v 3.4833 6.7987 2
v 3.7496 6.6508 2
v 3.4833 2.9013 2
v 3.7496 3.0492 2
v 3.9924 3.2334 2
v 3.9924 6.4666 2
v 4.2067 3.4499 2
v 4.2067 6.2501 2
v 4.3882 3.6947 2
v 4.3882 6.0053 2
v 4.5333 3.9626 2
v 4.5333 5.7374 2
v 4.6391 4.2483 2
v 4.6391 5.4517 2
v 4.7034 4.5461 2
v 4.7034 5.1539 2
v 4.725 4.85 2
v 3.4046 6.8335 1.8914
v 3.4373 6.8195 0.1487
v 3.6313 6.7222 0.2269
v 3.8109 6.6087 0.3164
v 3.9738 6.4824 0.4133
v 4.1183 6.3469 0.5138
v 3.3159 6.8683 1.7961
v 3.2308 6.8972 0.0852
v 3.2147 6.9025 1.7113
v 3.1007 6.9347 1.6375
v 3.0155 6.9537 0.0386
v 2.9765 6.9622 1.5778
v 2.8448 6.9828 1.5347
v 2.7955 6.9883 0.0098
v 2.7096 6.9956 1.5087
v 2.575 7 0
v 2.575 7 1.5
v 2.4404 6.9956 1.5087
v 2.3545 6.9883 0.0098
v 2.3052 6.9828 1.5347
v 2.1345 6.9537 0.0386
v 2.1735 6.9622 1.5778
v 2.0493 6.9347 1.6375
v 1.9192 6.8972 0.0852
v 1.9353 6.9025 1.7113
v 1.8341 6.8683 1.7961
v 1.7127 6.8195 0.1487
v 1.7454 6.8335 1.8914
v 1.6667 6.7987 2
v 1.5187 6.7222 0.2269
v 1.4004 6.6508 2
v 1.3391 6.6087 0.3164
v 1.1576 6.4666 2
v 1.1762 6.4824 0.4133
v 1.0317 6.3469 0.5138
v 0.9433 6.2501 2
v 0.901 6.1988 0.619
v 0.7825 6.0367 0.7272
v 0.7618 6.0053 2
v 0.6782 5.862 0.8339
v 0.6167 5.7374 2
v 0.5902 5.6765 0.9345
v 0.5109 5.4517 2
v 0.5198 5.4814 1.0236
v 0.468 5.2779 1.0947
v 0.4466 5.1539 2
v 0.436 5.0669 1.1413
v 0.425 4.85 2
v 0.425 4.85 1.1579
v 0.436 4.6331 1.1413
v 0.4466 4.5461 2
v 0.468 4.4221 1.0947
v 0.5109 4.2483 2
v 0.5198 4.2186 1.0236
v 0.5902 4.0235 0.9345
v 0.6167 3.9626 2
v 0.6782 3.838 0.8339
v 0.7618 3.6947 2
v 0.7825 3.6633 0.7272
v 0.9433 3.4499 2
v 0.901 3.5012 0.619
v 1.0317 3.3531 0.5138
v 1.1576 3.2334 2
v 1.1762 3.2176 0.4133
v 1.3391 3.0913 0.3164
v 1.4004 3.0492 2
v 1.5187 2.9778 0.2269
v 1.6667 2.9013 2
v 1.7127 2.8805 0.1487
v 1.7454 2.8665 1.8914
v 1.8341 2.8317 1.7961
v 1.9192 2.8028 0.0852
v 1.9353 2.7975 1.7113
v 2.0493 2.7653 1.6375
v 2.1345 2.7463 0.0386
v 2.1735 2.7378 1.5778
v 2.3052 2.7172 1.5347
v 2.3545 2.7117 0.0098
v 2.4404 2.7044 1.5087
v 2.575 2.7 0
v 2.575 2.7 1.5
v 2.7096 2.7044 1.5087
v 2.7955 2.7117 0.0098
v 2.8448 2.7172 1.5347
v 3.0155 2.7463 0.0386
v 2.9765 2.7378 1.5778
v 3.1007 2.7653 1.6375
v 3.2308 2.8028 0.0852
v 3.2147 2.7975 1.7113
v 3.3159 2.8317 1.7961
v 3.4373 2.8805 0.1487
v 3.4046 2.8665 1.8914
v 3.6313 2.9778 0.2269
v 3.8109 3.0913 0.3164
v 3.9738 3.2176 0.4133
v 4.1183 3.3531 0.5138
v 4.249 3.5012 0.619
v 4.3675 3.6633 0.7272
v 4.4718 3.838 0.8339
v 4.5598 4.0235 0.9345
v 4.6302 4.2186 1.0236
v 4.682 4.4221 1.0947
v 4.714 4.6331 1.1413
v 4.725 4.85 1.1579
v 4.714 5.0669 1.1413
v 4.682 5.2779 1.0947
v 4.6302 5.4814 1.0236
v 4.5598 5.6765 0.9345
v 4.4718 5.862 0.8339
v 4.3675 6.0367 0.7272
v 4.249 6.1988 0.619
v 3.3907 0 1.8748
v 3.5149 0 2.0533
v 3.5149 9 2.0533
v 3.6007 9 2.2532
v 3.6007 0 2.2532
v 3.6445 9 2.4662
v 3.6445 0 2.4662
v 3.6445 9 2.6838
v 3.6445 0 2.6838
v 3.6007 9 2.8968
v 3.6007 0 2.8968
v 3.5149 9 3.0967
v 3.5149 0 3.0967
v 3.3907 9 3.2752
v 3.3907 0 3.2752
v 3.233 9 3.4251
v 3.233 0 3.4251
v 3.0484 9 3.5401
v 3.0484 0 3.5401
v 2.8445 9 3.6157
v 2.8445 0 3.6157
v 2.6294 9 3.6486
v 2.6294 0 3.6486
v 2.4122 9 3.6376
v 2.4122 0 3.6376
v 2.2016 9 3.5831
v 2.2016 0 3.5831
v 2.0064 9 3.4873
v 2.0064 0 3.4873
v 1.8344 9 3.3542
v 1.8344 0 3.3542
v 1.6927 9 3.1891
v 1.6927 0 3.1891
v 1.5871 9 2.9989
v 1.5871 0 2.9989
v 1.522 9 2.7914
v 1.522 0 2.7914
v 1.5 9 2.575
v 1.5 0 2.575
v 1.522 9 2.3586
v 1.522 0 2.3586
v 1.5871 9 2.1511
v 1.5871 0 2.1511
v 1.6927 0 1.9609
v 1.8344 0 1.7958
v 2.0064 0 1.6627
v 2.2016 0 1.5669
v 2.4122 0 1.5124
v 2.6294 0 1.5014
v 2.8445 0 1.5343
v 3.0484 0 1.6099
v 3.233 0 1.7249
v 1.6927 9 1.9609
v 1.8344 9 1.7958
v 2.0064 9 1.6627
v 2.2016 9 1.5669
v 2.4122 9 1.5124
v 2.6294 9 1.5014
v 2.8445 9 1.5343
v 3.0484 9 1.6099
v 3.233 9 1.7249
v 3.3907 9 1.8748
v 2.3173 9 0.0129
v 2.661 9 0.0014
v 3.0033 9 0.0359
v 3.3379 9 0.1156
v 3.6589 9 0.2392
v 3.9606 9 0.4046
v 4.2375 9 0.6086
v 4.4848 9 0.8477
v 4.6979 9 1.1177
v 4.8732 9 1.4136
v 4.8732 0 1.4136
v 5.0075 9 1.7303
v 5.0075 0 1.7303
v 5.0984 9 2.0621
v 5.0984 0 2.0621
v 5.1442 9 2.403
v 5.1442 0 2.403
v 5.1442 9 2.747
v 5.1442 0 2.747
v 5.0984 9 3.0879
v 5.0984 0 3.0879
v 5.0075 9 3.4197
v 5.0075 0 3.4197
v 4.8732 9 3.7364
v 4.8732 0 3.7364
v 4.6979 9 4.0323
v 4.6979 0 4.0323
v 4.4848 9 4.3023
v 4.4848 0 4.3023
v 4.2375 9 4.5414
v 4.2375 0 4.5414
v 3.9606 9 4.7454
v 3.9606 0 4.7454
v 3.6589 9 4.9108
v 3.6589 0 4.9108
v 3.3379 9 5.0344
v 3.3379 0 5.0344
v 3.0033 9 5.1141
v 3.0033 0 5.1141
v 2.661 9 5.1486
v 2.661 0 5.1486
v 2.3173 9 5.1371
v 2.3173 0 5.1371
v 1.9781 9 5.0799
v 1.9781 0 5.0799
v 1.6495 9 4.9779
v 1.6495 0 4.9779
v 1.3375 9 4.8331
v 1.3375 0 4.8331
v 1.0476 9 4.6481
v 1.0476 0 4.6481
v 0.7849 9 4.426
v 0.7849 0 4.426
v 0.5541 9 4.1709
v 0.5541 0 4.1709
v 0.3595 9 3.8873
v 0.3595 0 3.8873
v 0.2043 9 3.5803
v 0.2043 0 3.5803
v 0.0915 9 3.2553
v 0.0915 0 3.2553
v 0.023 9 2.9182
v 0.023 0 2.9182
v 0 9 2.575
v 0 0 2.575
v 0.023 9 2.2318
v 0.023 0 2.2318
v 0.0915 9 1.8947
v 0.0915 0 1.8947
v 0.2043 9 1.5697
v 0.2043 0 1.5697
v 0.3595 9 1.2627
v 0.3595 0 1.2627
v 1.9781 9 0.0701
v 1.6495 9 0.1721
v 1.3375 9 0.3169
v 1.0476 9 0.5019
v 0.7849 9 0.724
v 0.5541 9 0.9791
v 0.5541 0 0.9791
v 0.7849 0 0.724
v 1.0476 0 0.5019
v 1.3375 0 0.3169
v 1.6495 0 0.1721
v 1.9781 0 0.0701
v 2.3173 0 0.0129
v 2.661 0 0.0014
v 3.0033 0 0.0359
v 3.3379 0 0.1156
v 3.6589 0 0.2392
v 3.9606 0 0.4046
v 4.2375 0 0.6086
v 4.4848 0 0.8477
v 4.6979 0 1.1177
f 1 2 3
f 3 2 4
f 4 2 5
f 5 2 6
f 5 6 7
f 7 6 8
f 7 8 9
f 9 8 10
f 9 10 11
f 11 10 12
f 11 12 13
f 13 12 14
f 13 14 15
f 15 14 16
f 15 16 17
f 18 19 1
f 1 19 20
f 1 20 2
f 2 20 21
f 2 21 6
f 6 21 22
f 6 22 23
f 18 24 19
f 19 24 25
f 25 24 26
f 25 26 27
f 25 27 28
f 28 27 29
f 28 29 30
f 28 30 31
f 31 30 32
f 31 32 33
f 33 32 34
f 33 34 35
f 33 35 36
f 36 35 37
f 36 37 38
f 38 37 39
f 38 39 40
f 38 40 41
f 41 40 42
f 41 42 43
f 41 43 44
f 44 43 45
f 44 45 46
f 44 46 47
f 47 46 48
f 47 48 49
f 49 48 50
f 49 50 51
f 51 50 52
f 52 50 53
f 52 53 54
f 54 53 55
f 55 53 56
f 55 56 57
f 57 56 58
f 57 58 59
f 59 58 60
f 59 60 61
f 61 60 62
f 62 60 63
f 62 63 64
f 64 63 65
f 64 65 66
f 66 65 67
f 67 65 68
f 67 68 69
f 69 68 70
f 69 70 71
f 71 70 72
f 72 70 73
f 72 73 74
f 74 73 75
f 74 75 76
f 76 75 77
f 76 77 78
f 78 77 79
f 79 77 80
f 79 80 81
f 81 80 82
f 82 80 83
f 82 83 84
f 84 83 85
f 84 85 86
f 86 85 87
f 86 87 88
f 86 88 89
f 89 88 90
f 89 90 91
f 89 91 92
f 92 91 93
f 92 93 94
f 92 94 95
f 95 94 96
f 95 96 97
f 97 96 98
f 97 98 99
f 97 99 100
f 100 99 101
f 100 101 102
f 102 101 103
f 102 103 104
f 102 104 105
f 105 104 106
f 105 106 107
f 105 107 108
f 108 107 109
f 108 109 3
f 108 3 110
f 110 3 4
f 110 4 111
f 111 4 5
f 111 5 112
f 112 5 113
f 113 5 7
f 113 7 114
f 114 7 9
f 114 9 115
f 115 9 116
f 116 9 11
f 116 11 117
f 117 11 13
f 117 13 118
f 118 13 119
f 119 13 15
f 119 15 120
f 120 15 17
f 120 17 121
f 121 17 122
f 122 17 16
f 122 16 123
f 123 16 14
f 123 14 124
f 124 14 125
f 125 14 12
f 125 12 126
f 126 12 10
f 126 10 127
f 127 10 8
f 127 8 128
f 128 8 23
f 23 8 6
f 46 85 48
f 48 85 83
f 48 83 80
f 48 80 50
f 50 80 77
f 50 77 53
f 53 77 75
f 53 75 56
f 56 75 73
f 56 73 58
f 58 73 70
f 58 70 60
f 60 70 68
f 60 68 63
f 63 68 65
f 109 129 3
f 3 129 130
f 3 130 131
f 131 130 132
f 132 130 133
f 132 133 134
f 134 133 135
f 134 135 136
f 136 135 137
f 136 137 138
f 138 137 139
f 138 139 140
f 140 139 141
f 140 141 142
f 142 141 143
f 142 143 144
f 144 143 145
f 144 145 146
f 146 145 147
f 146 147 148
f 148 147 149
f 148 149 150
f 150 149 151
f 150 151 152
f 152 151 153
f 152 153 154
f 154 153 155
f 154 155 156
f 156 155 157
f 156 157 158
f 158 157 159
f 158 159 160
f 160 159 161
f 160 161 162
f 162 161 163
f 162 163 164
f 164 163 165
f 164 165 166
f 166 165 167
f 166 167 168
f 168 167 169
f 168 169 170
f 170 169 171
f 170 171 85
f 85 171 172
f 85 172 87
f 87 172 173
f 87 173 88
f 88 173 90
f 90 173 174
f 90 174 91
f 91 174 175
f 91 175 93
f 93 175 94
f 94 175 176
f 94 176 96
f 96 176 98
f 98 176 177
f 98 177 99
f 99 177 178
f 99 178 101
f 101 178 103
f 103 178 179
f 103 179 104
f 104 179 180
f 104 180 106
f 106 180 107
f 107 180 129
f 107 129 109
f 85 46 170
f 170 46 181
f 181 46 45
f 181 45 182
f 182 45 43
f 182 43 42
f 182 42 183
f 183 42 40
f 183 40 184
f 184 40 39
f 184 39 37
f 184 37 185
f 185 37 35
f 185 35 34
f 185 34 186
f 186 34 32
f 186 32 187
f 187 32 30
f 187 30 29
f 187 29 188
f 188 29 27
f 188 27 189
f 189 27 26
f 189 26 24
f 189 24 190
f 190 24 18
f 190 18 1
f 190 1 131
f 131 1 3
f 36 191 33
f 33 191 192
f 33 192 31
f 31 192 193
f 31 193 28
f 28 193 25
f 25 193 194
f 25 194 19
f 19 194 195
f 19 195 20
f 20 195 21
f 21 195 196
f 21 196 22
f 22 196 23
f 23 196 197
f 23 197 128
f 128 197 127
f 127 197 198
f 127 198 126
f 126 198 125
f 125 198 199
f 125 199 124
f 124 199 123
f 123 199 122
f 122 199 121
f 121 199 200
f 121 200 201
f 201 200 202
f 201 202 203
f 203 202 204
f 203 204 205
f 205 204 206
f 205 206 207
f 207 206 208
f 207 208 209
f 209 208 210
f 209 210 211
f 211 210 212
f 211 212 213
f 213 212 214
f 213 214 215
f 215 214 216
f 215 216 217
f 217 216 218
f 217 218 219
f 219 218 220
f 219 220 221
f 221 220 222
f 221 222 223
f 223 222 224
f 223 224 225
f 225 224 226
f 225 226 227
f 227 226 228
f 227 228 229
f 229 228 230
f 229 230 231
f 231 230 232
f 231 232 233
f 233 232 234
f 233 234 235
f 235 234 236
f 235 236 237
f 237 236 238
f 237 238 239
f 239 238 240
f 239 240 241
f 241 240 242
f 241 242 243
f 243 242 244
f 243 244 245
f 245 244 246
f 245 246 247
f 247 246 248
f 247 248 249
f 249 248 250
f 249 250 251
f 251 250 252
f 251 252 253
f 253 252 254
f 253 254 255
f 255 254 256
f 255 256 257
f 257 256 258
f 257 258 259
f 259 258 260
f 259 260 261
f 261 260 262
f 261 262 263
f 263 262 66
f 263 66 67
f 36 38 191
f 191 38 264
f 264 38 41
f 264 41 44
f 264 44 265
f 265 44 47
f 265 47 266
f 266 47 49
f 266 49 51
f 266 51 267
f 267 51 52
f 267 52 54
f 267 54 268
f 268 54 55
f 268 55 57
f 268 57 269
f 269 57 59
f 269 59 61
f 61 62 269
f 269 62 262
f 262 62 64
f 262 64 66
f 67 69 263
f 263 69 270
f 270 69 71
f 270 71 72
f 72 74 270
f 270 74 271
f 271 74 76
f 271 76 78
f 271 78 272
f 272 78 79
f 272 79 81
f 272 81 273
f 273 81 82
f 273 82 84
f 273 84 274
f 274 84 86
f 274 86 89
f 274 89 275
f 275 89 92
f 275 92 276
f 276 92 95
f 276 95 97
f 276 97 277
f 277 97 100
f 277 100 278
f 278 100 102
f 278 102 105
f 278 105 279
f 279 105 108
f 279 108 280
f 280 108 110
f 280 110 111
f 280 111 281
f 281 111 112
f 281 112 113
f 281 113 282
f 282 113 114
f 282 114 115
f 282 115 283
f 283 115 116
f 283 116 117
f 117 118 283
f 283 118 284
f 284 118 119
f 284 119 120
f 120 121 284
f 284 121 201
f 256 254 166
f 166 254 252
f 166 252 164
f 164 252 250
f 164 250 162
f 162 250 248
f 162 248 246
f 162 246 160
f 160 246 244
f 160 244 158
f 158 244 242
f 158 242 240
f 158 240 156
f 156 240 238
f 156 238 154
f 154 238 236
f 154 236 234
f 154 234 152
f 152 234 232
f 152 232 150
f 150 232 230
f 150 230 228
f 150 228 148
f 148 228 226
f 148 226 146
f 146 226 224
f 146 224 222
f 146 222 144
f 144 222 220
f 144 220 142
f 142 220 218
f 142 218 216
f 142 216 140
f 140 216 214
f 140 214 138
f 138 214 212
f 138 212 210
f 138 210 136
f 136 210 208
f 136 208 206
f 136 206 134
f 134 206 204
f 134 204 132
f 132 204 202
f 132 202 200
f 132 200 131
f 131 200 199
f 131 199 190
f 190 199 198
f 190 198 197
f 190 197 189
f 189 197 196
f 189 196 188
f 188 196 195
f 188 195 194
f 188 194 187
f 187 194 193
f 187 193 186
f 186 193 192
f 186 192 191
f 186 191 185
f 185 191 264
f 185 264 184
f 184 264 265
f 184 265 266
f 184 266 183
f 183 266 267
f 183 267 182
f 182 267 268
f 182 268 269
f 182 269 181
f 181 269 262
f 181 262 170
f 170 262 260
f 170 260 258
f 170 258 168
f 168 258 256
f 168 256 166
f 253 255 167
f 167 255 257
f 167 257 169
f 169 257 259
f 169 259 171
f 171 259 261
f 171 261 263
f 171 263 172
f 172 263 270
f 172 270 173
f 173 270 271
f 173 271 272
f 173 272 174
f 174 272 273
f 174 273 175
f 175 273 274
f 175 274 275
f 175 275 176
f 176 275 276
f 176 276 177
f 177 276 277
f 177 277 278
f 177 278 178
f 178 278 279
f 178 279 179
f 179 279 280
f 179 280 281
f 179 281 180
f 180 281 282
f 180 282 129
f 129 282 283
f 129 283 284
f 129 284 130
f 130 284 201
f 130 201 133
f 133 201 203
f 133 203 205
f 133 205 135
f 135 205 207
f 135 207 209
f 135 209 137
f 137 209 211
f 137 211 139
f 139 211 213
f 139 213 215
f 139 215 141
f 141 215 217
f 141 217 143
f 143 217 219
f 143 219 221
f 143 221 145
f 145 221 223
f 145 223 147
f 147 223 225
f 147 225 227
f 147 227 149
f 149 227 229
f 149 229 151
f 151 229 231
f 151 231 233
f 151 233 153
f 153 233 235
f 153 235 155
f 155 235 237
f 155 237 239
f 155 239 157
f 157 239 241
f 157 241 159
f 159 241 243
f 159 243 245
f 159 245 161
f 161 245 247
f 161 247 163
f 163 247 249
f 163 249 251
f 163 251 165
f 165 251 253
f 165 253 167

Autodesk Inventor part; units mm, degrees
ref_plane "YZ Plane" through (0, 0, 0) normal (1, 0, 0) x (0, 1, 0)
ref_plane "XZ Plane" through (0, 0, 0) normal (0, 1, 0) x (-1, 0, 0)
sketch "Sketch1" plane through (0, 0, 0) normal (0, 1, 0) x (-1, 0, 0)
  circle A0 centre (-2.575, 2.575) radius 1.075
  circle A1 centre (-2.575, 2.575) radius 2.575
  line L0 (0, 0) -> (-7.3028, 0) construction
  line L1 (0, 0) -> (0, 4.3038) construction
  dimension "d0" = 2.15
  dimension "d1" = 5.15
extrude "Extrusion1" add sketch "Sketch1" along normal blind 9
ref_plane "Work Plane1" through (2.575, 0, 1.5) normal (0, 0, 1) x (1, 0, 0)
ref_plane "screwMaxDist" through (2.575, 0, 2) normal (0, 0, 1) x (1, 0, 0)
sketch "Sketch2" plane through (0, 0, 0) normal (0, 0, 1) x (1, 0, 0)
  line L0 (5.15, 9) -> (0, 9) projected
  circle A0 centre (2.575, 4.85) radius 2.15
  line L1 (5.15, 9) -> (0, 9) projected
  line L2 (5.15, 0) -> (0, 0) projected
  line L3 (0, 0) -> (0, 9) projected
  line L4 (0, 7) -> (5.15, 7)
  line L5 (5.15, 0) -> (5.15, 9) projected
  dimension "d5" = 4.3
  dimension "d15" = 2
  dimension "d16" = 2.575
  dimension "d17" = 2.575
extrude "Extrusion2" cut sketch "Sketch2" along normal up to surface (2 mm away) contours A0
equation "\"d16\" = d17"
properties part number "motor_shaft_adapter" material "ABS Plastic"
